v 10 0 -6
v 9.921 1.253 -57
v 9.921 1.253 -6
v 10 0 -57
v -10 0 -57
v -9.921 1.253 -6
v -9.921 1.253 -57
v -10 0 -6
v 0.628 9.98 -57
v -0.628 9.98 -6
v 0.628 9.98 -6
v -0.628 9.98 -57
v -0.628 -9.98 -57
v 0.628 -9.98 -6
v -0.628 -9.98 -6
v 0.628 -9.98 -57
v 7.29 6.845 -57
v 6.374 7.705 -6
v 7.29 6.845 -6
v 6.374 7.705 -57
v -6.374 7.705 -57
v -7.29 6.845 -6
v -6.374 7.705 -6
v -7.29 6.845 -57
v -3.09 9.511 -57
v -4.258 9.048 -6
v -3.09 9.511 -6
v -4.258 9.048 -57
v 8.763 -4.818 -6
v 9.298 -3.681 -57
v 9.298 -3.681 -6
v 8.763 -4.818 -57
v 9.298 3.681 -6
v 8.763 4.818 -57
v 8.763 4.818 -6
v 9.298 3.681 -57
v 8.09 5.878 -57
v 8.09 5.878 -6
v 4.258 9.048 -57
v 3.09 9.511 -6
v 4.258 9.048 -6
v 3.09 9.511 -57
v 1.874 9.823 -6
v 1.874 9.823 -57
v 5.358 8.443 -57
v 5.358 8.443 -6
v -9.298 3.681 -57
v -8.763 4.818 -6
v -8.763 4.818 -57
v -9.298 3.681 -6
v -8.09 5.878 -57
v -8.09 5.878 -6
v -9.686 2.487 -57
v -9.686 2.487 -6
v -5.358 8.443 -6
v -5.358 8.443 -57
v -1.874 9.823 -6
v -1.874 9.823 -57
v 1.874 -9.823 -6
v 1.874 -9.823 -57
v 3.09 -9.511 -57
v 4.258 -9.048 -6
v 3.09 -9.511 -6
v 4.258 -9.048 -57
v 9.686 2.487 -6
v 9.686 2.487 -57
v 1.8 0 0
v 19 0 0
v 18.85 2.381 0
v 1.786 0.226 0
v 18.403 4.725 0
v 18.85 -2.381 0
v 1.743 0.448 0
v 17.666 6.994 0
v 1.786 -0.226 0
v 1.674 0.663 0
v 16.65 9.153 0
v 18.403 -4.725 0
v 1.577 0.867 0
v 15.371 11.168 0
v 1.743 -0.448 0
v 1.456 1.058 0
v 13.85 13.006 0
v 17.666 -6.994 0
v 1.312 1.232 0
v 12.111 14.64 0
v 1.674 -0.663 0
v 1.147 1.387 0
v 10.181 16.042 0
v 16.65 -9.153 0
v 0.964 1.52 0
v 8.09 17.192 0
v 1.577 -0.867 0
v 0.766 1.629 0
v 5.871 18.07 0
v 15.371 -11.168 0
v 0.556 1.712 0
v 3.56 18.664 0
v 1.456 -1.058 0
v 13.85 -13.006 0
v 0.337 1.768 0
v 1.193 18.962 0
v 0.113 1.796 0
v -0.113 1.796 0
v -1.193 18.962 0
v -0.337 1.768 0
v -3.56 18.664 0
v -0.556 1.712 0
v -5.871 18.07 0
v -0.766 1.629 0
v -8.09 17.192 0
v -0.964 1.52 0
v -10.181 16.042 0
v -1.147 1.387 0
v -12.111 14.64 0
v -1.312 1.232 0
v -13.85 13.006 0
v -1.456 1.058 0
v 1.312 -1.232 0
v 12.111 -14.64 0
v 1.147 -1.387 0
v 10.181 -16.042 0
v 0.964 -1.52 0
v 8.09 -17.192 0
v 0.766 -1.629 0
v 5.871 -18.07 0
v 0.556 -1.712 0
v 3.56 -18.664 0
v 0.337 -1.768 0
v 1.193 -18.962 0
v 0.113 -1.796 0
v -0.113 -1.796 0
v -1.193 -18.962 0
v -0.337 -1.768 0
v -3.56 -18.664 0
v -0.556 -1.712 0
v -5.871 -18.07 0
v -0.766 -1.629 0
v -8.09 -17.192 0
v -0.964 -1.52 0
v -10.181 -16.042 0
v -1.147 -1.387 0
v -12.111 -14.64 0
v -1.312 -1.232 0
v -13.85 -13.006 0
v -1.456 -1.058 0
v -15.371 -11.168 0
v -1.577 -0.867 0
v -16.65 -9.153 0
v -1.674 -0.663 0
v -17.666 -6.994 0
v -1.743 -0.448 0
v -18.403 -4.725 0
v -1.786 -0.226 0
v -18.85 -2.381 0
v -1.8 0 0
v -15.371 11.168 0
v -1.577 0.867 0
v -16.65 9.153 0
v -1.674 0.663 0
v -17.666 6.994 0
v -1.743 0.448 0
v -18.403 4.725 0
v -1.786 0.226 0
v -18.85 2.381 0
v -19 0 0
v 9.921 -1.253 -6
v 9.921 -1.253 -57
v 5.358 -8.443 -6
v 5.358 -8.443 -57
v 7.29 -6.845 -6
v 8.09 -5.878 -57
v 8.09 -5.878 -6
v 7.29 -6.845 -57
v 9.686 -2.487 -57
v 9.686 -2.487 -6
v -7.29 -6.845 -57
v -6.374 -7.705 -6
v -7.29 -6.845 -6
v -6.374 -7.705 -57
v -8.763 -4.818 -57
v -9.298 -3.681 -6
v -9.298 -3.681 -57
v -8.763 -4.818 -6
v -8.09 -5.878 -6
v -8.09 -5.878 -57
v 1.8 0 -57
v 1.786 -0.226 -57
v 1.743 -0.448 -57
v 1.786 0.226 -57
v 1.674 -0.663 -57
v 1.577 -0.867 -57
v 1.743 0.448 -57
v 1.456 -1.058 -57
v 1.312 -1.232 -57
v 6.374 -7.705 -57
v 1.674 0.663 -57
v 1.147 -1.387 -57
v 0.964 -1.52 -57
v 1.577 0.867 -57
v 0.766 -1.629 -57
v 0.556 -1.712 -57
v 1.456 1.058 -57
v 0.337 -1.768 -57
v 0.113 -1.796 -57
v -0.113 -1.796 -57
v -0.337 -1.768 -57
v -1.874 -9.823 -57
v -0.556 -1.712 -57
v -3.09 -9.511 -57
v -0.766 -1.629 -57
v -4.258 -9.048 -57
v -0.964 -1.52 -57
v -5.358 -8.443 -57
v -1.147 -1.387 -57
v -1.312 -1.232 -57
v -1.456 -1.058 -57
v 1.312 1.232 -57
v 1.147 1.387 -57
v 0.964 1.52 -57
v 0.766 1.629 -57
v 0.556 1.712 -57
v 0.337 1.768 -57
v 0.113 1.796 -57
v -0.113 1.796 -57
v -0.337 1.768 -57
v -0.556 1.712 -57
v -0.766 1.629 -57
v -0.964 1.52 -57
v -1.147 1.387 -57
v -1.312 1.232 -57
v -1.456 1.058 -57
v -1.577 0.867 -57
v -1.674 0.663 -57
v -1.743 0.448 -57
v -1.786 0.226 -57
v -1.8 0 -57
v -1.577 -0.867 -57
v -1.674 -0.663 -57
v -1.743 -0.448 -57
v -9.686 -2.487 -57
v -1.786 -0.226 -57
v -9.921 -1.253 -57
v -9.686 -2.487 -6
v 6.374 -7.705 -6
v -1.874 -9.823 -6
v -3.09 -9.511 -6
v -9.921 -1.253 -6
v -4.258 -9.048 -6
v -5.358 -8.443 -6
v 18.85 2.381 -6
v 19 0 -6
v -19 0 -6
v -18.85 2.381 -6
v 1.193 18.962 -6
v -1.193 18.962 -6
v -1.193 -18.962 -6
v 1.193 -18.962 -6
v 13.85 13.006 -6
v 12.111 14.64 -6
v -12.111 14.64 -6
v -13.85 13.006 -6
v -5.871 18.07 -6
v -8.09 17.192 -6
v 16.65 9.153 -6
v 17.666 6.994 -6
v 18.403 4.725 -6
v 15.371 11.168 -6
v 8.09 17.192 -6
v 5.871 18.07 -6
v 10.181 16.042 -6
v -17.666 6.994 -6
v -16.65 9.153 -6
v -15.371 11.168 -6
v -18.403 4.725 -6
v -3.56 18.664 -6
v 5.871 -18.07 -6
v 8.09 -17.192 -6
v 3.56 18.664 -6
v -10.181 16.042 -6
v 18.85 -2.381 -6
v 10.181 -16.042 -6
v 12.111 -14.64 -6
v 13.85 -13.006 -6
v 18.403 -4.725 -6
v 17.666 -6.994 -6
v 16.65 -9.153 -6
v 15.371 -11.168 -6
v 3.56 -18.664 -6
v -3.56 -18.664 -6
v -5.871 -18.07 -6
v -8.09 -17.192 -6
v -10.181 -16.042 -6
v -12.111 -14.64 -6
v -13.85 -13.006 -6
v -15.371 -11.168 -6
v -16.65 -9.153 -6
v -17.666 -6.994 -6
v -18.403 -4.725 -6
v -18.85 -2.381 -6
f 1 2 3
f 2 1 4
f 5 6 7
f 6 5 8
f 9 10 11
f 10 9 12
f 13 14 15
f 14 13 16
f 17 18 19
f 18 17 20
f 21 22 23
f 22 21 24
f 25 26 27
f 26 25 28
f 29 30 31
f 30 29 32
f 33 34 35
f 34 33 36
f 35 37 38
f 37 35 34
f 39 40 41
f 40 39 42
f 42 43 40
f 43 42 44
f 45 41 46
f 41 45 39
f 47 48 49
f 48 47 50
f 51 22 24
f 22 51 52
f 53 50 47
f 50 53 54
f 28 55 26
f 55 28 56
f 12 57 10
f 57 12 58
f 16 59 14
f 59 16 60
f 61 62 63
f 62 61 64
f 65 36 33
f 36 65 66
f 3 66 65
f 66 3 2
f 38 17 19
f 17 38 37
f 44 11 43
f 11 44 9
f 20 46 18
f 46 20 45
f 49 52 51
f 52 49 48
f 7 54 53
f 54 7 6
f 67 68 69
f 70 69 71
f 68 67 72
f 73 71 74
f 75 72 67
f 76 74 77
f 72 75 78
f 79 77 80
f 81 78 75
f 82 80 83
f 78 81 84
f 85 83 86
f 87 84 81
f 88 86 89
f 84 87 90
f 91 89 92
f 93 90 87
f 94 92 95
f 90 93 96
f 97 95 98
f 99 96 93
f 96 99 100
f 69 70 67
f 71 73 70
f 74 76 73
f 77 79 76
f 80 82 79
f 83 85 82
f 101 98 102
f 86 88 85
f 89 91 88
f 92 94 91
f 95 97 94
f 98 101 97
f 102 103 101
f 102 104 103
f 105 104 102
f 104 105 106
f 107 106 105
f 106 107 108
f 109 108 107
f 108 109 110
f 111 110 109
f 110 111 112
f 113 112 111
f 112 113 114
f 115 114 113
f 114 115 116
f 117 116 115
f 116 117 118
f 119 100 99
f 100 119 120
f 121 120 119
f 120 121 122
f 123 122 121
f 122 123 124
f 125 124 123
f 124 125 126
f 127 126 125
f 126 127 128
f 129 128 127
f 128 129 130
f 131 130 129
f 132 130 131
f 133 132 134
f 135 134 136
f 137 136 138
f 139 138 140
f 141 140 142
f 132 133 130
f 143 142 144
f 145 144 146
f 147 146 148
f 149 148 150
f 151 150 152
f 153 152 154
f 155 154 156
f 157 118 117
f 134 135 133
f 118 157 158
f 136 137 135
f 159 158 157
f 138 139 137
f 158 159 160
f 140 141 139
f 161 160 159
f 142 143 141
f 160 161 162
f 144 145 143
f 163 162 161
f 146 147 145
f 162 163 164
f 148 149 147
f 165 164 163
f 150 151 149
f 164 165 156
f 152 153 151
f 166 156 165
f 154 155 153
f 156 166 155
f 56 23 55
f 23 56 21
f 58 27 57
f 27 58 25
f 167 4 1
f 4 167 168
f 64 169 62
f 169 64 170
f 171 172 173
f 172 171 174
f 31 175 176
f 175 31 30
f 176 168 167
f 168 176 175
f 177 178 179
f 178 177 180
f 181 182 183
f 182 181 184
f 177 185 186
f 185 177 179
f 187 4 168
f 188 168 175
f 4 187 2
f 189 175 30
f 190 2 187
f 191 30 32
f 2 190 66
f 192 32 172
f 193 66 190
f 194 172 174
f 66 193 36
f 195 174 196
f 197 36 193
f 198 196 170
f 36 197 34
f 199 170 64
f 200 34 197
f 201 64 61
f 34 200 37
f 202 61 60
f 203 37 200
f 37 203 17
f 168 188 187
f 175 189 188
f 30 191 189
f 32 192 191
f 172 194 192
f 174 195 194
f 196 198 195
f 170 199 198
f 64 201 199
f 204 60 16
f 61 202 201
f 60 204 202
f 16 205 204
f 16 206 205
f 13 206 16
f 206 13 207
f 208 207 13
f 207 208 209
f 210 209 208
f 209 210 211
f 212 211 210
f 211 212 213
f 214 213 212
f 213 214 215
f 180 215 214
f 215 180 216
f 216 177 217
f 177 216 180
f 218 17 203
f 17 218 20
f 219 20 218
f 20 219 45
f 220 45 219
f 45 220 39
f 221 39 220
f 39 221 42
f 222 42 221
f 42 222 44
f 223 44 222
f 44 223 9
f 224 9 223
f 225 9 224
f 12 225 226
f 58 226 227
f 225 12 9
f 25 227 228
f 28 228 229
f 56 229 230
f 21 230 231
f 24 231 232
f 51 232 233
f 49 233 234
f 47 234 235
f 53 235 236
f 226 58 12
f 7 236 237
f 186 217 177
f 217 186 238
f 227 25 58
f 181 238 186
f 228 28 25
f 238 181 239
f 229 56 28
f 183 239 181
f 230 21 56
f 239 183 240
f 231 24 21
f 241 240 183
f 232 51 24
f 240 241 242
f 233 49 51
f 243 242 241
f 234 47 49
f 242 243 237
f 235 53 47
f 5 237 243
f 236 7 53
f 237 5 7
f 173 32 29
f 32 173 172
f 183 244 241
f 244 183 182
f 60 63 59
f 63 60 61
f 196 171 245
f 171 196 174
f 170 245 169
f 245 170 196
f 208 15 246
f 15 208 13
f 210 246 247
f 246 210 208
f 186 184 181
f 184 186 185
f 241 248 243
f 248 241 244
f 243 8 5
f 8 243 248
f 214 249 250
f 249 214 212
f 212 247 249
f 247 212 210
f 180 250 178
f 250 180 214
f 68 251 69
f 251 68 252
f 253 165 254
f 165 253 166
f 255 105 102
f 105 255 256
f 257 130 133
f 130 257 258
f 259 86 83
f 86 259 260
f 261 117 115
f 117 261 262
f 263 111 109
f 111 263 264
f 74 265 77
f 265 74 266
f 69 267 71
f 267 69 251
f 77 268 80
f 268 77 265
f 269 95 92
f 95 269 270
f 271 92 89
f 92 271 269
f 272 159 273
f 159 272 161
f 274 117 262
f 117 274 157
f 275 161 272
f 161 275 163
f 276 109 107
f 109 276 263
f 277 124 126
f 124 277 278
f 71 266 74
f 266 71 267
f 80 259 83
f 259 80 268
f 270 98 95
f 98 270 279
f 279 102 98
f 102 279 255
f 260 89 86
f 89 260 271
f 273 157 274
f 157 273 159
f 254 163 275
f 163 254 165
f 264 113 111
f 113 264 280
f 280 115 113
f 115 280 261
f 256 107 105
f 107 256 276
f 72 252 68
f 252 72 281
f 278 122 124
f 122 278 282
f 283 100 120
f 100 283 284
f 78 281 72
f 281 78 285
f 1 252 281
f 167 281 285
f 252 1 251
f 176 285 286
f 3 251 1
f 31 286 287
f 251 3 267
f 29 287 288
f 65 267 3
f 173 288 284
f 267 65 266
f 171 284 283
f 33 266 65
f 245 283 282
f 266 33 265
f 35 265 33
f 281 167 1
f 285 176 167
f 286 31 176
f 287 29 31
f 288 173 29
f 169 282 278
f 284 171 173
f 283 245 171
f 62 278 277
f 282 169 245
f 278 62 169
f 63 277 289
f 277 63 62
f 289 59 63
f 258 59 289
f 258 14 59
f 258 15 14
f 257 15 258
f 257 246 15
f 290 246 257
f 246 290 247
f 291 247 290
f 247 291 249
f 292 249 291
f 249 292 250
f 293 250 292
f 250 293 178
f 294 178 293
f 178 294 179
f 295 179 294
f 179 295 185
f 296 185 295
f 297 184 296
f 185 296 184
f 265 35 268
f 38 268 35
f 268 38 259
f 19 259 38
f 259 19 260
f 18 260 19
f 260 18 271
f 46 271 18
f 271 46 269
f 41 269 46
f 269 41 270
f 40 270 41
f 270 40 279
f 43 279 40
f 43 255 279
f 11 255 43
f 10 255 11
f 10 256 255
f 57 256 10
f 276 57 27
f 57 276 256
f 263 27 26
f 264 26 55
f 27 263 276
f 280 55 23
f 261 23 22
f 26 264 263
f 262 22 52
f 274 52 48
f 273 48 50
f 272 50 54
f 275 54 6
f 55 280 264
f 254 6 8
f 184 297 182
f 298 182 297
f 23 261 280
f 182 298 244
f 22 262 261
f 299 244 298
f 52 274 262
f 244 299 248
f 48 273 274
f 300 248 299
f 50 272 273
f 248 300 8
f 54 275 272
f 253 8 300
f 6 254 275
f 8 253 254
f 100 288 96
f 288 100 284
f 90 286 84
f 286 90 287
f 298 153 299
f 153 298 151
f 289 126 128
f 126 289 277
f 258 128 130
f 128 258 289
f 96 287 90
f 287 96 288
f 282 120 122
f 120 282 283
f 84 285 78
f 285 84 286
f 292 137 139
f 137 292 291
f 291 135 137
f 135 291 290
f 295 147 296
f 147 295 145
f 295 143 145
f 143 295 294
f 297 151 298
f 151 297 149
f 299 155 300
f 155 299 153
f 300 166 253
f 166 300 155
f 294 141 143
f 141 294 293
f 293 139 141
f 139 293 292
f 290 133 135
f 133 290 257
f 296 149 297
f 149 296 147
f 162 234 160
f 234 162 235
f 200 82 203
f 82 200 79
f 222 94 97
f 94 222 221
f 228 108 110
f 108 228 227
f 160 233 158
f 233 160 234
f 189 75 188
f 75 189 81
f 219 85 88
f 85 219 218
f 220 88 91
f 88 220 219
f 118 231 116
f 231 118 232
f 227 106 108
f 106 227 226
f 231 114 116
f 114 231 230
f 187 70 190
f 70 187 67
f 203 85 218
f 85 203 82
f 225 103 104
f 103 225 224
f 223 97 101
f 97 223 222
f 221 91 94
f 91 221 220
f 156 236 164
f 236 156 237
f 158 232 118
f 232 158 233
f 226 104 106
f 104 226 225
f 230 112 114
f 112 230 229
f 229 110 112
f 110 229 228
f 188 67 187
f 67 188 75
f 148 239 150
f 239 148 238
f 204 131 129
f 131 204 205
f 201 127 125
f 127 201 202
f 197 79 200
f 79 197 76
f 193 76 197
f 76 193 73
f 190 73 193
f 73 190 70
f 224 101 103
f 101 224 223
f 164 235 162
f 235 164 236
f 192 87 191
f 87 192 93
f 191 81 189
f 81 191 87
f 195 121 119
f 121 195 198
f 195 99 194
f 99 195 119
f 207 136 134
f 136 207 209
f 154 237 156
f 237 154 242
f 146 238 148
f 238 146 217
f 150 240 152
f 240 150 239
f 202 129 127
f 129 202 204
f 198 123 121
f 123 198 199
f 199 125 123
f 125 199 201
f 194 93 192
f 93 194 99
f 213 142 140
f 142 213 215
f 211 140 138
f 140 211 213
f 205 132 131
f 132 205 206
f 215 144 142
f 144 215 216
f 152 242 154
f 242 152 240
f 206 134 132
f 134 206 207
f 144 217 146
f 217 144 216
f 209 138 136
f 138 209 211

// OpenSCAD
$fn = 50;


difference() {
	union() {
		translate(v = [0, 0, -57.0000000000]) {
			cylinder(h = 57, r = 10.0000000000);
		}
		translate(v = [0, 0, -6.0000000000]) {
			cylinder(h = 6, r = 19.0000000000);
		}
	}
	union() {
		#translate(v = [0, 0, -57]) {
			cylinder(h = 57, r = 1.8000000000);
		}
	}
}
